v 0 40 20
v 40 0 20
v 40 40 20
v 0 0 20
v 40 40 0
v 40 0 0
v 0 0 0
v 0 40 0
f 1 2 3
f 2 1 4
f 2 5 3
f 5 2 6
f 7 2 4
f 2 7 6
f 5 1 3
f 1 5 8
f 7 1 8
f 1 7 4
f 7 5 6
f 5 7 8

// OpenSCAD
// Parameters
outer_size = 40;     // Outer box width and depth
height = 20;         // Height of the box
wall_thickness = 2;  // Thickness of the outer wall

module sloped_inner_box() {
    difference() {
        // Outer box
        cube([outer_size, outer_size, height]);

        // Inner cavity
        translate([wall_thickness, wall_thickness, 0])
        polyhedron(
            points=[
                [0, 0, 0],                                // 0: bottom corner
                [outer_size - 2*wall_thickness, 0, 0],    // 1: bottom front right
                [outer_size - 2*wall_thickness, outer_size - 2*wall_thickness, 0], // 2: bottom back right
                [0, outer_size - 2*wall_thickness, 0],    // 3: bottom back left
                [0, 0, height - wall_thickness]           // 4: top corner (sloped)
            ],
            faces=[
                [0, 1, 2, 3],  // bottom face
                [0, 1, 4],     // sloped triangle face
                [1, 2, 4],     // right wall
                [2, 3, 4],     // back wall
                [3, 0, 4]      // left wall
            ]
        );
    }
}

// Render the model
sloped_inner_box();
